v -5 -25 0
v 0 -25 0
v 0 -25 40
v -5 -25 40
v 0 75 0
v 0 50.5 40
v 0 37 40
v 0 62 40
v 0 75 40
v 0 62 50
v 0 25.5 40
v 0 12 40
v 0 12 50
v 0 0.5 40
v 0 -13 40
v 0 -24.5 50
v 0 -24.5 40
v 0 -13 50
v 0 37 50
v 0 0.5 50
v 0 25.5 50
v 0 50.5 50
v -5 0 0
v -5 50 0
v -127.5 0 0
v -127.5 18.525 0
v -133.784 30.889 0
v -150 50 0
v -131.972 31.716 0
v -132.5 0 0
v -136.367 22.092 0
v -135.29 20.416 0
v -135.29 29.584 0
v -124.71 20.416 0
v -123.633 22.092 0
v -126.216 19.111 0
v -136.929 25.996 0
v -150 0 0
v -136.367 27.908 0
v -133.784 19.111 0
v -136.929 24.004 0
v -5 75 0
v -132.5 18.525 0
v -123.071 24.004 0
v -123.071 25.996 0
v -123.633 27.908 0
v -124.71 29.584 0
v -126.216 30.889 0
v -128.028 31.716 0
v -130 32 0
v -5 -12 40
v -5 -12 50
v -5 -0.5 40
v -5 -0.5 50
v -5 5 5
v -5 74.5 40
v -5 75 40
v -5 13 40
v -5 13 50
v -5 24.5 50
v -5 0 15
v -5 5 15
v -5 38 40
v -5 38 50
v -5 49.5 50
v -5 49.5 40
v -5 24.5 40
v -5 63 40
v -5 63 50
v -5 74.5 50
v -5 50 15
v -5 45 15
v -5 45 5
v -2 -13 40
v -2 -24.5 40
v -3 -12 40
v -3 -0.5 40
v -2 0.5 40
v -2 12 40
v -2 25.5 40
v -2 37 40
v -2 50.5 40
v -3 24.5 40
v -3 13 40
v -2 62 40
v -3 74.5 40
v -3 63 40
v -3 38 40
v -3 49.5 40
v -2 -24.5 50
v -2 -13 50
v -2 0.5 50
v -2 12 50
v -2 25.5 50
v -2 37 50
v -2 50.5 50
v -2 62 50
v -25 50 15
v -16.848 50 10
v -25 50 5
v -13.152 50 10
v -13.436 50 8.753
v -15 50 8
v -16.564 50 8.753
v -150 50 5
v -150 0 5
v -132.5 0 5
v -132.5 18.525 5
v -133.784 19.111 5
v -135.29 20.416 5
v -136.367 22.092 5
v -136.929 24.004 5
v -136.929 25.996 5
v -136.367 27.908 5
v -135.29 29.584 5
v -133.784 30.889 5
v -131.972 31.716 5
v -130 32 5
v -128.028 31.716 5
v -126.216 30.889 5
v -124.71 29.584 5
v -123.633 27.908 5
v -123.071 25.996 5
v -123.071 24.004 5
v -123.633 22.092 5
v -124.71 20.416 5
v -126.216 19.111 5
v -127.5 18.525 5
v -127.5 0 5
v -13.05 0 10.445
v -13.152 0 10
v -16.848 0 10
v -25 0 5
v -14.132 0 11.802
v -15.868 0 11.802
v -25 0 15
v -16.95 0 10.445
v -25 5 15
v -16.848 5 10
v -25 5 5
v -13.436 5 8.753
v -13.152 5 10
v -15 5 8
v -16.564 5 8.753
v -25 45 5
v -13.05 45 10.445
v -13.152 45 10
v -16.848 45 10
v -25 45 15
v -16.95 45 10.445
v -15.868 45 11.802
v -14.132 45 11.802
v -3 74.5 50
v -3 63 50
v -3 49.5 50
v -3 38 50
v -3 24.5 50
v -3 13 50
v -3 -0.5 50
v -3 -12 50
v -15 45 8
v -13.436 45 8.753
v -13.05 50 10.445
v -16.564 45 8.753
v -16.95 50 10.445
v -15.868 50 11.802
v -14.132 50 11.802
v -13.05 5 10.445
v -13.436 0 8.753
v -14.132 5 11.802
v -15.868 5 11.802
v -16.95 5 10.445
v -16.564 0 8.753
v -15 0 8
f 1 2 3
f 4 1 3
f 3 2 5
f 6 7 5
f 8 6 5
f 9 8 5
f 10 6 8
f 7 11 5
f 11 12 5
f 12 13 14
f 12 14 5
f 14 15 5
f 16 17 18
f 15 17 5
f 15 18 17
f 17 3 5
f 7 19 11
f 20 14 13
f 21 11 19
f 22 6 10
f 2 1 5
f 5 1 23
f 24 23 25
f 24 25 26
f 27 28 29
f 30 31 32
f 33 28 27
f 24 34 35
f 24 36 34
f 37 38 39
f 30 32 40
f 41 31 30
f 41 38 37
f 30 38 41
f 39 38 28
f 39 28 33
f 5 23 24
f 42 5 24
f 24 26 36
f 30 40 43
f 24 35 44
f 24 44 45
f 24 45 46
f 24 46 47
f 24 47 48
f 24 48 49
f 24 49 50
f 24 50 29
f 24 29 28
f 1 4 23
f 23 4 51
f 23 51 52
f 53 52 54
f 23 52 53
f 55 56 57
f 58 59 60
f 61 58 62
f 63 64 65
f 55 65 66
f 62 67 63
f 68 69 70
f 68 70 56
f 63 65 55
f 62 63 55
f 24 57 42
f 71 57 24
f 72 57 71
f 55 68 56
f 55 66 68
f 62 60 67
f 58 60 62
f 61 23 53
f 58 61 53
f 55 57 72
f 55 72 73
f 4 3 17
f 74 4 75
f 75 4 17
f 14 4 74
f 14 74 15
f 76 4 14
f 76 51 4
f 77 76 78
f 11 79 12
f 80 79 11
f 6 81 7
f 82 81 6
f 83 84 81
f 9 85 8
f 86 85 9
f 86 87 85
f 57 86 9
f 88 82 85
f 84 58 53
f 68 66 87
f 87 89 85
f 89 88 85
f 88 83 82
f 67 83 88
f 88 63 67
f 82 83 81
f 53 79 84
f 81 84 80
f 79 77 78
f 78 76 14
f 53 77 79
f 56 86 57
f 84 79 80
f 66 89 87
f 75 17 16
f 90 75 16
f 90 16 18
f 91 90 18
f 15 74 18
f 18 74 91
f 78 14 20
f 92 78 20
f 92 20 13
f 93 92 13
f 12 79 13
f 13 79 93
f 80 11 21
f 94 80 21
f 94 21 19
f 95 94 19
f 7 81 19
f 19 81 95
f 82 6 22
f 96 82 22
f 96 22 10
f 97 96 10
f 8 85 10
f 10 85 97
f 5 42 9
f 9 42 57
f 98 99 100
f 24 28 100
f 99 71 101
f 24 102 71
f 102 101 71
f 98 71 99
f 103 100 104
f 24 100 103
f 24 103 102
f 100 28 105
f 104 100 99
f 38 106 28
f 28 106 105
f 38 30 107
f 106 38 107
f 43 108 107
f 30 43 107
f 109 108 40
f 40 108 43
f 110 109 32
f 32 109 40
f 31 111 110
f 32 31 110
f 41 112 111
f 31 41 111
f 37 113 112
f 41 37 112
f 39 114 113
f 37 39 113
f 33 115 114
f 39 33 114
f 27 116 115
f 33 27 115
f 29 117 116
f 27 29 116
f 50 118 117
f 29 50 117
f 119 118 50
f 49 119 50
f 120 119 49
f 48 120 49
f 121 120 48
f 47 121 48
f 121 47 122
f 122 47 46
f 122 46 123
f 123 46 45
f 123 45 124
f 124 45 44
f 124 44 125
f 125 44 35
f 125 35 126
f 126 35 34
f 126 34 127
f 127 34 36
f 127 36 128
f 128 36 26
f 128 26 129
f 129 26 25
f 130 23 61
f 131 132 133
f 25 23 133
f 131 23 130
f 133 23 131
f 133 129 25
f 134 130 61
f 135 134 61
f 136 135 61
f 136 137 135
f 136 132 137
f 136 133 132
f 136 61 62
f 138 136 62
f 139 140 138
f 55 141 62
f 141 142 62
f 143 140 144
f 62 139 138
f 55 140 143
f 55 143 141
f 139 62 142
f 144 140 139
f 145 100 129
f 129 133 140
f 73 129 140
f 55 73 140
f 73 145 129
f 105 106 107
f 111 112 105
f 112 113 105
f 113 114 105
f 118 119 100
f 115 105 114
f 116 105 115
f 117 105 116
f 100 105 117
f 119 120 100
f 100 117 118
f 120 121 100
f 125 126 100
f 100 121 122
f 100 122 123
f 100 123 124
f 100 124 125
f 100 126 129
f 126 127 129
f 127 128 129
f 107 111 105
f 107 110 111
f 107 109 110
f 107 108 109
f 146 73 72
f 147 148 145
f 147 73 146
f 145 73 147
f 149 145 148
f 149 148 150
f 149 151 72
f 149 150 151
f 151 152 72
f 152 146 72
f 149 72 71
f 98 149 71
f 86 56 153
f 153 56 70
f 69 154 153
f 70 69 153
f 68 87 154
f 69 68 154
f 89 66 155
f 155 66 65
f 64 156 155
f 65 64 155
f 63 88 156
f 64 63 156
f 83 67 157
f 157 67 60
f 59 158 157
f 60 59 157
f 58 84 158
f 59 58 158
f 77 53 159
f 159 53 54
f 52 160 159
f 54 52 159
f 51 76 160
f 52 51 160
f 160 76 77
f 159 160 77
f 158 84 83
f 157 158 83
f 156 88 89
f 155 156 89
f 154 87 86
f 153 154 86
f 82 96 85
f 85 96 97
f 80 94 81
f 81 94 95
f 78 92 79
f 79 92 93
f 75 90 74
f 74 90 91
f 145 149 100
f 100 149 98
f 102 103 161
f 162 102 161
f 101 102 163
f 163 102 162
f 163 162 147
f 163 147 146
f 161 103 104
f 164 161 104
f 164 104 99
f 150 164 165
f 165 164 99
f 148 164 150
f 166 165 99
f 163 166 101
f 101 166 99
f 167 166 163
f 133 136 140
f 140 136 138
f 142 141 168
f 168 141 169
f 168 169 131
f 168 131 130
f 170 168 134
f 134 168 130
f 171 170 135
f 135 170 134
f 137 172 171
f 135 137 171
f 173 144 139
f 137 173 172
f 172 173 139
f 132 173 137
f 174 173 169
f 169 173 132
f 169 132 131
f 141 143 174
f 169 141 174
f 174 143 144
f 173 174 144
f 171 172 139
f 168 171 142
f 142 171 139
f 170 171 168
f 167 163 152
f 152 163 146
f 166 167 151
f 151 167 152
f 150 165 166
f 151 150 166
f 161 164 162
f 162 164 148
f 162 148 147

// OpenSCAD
thickness = 5;
foot_width = 100;
foot_length = 40;
connector_offset = 0.5;
connector_length = 10;
hole_opener_height = 5;

rotate(90) {
difference() {
	cube([50, 150, thickness]);
	translate([25,130,0]) {cylinder(thickness, r=7);}
	translate([0,130-(hole_opener_height/2),0]) {cube([20, hole_opener_height, thickness]);}
}

translate([-25,0,0]) {
	cube([foot_width, thickness, foot_length]);

	for ( i = [0 : 3] ) {
		translate([i*25,0,foot_length]) {
			translate([connector_offset,0,0]) {cube([foot_width / 8 - (2 * connector_offset),thickness/2 - connector_offset,connector_length]);}
			translate([foot_width / 8 + connector_offset,thickness/2+connector_offset,0]) {cube([foot_width / 8 - (2 * connector_offset),thickness/2 - connector_offset,connector_length]);}
		}
	}
}

difference() {
	translate([45,5,5]) {cube([5,20,10]);}
	for (i = [[45,15,10]]) {
		translate(i) {
			rotate([0,90]) {
				cylinder(thickness, r=2);
			}
		}
	}
}

difference() {
	translate([0,5,5]) {cube([5,20,10]);}
	for (i = [[0,15,10]]) {
		translate(i) {
			rotate([0,90]) {
				cylinder(thickness, r=2);
			}
		}
	}
}

}
